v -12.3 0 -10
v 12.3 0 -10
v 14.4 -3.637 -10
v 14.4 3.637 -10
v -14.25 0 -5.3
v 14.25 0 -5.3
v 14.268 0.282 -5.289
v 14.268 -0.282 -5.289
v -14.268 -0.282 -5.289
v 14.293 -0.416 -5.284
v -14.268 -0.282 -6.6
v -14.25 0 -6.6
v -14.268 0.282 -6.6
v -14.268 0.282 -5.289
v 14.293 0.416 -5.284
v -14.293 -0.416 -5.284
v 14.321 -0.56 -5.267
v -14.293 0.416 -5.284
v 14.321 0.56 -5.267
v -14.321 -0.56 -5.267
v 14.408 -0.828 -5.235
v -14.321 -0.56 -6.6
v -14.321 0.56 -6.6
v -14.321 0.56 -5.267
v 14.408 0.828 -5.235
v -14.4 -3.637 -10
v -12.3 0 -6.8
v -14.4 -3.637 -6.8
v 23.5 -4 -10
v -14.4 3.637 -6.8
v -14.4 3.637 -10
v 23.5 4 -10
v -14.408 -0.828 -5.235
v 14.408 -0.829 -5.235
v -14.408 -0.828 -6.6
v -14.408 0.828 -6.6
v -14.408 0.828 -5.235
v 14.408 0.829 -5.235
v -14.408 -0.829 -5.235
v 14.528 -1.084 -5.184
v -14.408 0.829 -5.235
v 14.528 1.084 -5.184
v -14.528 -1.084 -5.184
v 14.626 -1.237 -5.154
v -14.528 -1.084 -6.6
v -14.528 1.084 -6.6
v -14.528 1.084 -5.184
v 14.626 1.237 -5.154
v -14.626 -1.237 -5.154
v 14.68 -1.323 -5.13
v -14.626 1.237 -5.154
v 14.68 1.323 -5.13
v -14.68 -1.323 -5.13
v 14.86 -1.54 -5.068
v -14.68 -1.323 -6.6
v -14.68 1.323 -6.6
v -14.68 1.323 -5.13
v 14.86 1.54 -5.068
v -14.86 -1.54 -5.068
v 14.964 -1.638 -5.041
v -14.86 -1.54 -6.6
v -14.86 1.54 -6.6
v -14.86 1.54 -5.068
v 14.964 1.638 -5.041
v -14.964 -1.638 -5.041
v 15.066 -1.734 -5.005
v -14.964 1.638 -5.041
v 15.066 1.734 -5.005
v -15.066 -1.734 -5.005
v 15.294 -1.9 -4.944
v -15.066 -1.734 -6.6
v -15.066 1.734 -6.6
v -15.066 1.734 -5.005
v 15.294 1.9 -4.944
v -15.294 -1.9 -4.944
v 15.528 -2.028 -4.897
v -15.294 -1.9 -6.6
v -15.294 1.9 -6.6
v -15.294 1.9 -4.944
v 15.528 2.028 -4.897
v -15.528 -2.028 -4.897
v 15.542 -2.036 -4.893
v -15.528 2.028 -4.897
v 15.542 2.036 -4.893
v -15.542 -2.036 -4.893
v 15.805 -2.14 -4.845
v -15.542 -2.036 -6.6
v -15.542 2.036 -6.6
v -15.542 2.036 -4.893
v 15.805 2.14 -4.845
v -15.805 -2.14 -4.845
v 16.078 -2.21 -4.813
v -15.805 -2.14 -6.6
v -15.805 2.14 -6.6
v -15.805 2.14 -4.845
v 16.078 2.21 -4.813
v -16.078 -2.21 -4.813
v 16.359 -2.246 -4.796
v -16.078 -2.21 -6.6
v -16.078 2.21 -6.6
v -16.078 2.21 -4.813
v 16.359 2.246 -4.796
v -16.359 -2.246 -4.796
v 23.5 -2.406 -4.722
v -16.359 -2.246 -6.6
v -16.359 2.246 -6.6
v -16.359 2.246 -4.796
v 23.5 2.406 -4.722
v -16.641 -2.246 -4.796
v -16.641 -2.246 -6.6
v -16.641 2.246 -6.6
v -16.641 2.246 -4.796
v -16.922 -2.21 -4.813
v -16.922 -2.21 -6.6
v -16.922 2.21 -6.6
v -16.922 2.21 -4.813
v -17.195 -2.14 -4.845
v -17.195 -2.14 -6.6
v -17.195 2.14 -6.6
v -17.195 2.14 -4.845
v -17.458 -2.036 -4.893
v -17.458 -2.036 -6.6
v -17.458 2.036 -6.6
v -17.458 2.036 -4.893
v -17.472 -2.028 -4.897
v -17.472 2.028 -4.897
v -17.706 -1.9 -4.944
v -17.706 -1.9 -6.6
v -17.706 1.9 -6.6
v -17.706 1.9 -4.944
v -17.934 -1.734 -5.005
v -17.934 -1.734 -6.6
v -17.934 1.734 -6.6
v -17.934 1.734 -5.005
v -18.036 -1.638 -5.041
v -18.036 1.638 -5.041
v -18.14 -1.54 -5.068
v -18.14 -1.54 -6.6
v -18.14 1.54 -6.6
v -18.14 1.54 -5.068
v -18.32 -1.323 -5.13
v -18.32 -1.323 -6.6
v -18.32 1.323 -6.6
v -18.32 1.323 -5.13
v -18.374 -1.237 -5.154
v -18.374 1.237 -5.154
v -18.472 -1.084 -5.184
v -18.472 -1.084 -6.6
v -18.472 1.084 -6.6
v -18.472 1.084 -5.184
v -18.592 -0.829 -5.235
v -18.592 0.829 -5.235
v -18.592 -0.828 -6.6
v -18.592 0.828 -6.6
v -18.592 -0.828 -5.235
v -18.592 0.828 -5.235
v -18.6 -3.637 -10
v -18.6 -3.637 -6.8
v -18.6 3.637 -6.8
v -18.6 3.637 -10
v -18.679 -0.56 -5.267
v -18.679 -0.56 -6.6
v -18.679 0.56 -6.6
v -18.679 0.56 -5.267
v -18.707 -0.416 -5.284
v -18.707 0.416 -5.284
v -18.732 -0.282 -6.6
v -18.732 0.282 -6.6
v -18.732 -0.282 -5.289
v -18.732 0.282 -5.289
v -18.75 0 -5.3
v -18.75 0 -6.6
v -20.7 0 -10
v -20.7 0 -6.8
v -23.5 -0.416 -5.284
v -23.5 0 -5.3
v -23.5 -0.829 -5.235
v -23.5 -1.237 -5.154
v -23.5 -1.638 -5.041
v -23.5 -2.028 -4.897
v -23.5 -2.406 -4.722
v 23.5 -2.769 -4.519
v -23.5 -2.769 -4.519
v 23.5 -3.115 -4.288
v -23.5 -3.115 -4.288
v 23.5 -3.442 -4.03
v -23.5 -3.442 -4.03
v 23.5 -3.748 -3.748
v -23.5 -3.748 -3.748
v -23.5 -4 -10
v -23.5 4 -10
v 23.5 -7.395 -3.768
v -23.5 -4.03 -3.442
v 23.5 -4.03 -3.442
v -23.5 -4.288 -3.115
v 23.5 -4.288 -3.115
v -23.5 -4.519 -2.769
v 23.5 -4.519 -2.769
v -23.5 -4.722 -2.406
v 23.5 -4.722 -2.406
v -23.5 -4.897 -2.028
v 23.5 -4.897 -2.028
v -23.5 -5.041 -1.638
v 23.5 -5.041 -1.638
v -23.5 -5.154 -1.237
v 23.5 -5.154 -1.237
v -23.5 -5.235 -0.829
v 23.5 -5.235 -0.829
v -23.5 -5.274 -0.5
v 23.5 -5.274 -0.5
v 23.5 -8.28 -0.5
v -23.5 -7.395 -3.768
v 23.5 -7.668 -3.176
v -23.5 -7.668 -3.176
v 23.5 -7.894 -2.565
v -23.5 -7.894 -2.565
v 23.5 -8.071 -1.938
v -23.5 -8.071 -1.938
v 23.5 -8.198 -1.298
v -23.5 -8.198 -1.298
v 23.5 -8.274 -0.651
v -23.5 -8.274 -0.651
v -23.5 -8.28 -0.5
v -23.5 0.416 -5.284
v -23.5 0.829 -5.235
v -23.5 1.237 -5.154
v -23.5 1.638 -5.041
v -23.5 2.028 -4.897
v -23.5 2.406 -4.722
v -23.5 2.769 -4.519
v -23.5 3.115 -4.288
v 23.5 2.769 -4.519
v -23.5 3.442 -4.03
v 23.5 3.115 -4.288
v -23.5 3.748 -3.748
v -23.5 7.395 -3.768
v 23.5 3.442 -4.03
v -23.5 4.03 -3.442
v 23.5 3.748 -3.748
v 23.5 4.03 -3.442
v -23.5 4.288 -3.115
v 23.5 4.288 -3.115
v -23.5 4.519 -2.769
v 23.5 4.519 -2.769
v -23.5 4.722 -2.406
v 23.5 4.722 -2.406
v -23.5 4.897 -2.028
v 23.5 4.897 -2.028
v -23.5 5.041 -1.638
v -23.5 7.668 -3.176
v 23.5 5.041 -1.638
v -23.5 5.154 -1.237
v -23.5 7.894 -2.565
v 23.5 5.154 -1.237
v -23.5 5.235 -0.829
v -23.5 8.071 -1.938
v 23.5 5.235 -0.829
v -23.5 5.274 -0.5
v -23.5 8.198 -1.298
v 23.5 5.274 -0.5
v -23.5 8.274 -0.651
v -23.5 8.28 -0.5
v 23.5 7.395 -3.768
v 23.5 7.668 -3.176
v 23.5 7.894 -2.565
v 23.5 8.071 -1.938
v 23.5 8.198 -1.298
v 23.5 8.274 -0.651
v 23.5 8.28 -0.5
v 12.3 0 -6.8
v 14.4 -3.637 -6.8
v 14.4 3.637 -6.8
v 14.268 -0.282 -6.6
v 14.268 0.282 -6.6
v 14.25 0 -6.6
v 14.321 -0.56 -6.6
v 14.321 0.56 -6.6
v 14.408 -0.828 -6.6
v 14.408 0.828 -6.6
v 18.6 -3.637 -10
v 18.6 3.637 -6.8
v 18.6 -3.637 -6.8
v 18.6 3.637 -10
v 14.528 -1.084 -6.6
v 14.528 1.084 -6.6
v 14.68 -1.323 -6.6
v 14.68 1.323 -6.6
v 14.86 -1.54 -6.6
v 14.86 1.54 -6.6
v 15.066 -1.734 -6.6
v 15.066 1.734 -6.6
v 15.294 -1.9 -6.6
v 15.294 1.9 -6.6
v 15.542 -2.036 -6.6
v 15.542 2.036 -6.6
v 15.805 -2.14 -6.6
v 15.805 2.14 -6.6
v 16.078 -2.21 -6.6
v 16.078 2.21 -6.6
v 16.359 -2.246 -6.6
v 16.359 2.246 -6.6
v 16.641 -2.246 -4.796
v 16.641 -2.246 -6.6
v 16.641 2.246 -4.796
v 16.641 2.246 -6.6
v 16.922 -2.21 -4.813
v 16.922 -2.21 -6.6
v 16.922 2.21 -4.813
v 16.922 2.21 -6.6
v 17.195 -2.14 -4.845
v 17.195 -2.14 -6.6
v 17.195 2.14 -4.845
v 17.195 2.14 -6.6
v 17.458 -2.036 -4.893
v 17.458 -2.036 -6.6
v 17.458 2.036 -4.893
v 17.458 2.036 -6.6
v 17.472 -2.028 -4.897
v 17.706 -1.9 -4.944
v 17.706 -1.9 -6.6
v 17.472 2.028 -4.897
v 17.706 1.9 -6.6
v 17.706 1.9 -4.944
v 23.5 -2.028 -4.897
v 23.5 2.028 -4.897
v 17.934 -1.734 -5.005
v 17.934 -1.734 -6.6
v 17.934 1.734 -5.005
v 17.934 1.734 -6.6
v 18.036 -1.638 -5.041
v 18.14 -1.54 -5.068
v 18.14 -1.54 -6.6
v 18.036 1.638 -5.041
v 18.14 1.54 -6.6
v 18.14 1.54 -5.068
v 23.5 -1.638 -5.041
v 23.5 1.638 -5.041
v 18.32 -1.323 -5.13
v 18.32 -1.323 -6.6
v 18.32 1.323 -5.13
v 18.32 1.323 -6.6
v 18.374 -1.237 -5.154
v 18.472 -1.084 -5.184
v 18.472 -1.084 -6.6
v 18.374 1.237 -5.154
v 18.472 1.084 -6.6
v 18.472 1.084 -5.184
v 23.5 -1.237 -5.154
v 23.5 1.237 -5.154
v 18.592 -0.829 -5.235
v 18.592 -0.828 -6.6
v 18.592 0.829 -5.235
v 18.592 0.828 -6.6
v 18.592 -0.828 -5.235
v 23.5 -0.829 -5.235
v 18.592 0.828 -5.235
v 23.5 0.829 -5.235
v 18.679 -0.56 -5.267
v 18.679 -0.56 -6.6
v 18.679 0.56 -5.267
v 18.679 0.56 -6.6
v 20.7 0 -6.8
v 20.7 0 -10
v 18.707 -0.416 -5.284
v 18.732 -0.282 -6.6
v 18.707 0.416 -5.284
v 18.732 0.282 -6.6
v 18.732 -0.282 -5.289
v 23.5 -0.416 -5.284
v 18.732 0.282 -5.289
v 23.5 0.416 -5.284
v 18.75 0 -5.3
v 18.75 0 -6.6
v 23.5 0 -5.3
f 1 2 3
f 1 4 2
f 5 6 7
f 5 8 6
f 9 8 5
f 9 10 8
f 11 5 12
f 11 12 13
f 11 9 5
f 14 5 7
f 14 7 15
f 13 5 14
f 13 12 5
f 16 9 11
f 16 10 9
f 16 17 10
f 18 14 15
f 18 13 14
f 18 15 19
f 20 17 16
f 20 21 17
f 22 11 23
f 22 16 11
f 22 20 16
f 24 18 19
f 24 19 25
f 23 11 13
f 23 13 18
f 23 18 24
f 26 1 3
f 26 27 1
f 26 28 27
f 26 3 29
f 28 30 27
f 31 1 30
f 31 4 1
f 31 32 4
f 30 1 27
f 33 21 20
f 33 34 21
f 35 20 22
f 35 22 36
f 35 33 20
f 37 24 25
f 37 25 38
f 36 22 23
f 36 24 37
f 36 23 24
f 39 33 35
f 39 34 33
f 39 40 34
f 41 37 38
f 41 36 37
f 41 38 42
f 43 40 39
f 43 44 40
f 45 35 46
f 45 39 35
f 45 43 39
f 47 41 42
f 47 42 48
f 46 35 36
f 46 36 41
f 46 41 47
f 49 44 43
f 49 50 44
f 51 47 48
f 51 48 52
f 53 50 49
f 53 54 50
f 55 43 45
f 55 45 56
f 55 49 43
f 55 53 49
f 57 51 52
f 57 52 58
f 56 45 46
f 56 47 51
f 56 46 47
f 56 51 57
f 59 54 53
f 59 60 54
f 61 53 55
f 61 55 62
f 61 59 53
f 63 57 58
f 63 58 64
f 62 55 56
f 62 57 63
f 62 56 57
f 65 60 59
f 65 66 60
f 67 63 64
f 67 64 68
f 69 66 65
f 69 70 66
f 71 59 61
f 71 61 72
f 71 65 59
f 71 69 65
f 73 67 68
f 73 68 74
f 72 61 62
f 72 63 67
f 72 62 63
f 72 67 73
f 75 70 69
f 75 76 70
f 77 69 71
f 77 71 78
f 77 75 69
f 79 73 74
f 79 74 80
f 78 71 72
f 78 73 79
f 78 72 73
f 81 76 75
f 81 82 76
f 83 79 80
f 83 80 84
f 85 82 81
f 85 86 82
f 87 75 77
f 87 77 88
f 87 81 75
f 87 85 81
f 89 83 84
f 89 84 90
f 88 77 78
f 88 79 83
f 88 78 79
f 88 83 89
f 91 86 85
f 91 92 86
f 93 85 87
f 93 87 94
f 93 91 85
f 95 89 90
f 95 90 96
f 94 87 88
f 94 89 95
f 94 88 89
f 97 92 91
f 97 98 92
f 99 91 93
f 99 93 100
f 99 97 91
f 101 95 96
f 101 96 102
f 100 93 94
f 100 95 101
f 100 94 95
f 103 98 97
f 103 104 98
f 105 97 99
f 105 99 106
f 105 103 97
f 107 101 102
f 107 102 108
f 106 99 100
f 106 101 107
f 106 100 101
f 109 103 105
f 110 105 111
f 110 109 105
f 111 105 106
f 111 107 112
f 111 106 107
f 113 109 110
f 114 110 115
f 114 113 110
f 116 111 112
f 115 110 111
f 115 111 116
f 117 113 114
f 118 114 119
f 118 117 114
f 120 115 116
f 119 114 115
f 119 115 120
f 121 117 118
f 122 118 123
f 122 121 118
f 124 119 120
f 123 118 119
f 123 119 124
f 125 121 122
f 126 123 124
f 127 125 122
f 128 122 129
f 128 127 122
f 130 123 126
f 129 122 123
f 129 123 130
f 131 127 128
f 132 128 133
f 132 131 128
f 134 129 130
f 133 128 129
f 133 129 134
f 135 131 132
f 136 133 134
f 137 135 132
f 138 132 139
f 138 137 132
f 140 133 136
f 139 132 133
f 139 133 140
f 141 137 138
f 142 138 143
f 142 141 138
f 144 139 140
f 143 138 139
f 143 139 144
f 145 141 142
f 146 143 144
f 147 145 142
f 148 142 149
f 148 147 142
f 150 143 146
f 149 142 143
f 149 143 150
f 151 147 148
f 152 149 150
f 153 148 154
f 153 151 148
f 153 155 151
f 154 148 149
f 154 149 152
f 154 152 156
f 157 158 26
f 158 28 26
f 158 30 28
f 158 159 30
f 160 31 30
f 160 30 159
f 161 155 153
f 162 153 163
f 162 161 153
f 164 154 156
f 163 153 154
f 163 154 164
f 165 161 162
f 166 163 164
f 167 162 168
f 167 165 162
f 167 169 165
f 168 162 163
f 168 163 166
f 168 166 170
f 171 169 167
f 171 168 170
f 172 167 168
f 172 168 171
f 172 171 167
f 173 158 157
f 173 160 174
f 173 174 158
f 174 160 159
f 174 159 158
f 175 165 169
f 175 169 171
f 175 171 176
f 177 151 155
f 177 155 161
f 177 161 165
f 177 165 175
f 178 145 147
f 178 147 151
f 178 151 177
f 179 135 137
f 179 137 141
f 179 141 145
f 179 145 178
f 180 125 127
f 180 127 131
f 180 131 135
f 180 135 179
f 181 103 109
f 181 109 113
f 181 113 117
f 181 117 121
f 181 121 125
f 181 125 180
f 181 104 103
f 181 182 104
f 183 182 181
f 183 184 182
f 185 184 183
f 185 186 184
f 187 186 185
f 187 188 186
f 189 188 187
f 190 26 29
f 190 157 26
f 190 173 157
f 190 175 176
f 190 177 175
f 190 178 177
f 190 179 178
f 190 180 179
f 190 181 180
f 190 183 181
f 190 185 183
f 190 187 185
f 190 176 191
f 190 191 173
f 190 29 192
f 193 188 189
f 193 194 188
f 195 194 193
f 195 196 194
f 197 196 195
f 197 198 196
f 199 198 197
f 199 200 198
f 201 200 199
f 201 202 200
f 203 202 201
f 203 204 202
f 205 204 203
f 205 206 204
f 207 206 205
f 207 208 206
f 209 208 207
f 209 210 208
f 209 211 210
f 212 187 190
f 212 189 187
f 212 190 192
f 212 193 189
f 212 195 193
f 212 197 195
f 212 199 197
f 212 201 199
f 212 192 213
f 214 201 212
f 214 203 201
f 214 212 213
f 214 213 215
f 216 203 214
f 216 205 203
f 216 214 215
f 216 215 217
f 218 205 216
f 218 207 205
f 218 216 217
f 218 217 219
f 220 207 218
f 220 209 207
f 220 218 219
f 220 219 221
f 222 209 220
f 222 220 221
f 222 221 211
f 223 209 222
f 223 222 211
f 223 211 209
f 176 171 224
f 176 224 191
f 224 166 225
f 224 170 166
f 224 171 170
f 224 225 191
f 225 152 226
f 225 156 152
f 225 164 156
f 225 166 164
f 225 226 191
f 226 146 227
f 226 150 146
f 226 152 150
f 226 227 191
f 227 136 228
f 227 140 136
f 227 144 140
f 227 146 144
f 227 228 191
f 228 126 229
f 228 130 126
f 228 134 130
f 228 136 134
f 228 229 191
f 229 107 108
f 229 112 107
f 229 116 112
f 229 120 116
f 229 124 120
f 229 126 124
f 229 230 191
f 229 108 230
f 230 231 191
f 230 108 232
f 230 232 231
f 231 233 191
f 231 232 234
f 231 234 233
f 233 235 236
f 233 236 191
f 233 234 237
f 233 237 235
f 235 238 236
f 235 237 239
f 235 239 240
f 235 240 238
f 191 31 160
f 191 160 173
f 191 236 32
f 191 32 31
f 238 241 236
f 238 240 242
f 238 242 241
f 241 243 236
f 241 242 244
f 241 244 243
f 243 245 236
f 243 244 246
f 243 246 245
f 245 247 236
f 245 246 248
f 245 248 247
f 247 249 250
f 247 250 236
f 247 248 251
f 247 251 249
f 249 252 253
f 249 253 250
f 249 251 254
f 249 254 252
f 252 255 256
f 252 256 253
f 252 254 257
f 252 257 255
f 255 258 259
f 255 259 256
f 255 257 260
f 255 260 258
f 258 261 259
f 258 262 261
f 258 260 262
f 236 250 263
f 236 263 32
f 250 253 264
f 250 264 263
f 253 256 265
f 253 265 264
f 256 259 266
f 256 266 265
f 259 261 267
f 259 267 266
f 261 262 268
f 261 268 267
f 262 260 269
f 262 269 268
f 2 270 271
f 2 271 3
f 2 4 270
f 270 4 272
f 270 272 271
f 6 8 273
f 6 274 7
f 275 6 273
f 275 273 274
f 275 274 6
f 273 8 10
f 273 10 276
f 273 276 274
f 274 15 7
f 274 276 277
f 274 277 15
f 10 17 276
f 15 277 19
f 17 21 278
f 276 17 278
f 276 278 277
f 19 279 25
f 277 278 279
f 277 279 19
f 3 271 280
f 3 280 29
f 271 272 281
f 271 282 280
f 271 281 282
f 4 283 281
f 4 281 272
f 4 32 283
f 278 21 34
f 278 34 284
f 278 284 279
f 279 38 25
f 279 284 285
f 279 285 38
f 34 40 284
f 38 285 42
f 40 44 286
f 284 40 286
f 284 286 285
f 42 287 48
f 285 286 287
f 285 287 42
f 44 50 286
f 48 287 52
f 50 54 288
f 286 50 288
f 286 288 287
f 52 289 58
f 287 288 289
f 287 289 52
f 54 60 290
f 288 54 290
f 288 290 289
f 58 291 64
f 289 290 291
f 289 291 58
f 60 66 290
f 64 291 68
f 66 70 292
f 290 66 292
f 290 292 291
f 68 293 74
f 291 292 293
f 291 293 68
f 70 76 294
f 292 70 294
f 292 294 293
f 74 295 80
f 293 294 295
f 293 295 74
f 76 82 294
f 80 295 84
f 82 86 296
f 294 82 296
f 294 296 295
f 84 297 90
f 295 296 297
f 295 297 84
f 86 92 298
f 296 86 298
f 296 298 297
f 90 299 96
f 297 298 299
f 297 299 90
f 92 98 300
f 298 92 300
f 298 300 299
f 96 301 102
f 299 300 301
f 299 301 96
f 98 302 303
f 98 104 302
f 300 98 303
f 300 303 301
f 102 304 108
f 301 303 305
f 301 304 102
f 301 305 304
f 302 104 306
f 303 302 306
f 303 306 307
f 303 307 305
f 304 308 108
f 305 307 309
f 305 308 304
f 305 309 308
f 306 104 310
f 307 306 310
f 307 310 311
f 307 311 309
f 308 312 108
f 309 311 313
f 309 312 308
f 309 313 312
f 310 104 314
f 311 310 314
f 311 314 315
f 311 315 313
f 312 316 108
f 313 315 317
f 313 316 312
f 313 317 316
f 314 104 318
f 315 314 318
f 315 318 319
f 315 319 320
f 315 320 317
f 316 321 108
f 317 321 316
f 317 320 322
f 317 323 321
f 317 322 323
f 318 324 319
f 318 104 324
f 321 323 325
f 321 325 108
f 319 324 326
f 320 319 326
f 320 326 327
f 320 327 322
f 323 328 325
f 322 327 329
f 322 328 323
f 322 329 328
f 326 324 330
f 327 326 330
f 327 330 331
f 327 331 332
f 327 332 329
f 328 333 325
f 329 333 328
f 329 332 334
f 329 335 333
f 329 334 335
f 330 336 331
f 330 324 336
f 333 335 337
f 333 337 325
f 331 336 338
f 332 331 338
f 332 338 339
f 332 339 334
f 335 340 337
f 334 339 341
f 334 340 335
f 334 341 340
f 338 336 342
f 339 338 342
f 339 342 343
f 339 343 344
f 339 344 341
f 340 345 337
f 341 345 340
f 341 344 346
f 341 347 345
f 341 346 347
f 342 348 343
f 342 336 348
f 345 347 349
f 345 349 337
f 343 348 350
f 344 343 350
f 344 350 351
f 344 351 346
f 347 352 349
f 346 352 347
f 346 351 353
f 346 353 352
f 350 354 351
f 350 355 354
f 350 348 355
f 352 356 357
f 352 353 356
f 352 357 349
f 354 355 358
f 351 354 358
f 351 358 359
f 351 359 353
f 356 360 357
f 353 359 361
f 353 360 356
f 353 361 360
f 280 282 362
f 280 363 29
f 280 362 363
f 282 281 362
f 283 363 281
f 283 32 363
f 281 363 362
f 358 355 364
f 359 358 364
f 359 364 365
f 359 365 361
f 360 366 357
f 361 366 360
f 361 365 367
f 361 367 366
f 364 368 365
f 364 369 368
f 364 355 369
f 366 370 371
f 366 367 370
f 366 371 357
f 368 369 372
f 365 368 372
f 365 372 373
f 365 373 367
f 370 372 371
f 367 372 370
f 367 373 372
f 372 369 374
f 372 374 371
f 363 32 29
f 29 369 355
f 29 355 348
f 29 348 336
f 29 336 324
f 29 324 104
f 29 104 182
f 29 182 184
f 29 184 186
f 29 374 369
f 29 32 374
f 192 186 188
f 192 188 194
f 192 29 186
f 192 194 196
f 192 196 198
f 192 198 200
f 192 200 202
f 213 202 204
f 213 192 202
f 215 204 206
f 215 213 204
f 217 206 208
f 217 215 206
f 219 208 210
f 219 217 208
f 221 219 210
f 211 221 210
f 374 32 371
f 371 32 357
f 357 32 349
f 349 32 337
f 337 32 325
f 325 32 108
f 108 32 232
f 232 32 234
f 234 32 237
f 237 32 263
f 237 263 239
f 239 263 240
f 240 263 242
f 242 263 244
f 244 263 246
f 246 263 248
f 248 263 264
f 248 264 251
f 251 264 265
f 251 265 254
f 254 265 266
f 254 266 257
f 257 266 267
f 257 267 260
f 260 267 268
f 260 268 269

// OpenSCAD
// file: lib/igus.scad
include <../../parameters.scad>


module efsm_12(){
    translate([0, 0, -(bearing_efsm_12_ag - bearing_efsm_12_B/2)]){
        translate([-bearing_efsm_12_h/2, -bearing_efsm_12_h/2, 0])
            cube([bearing_efsm_12_h, bearing_efsm_12_h, bearing_efsm_12_a1]);
        difference(){
            union(){
                intersection(){
                    translate([0,0, bearing_efsm_12_ag - bearing_efsm_12_B/2])
                        sphere(d=18, $fn = 50);
                    translate([0,0,-15])
                        cylinder(h = 30, d = 20);
                }
            }
            translate([0, 0, -15])
                cylinder(h=30, d=12);
        }
    }
}


module efsm_8(){
    translate([-33/2, -33/2, 0])
        cube([33, 33, 5.5]);
    translate([0,0,8.5])
        cylinder(h = 2, d1 = 18, d2 = 15);
    translate([0,0,6.5])
        cylinder(h = 7.94/2, d = 2);
    translate([0, 0, 6.5])
        sphere(r=3, $fn = 50);
}


module kstm_05(){
    import("../../STL/external/igus/KSTM_05_1.stl", convexity = 5);
}

module kstm_06(){
    import("../../STL/external/igus/KSTM_06_2.stl", convexity = 5);
}

module kstm_08(){
    import("../../STL/external/igus/KSTM_08_3.stl", convexity = 5);
}

module kstm_10(){
    import("../../STL/external/igus/KSTM_10_4.stl", convexity = 5);
}


data_kstm_center_height = [[5,7],[6,10],[8,10],[10,14]];
function kstm_center_height(type) = data_kstm_center_height[search(type, data_kstm_center_height)[0]][1];

data_kstm_hole_distance = [[5,25], [6,33], [8,33], [10,46], [12,46]];
function kstm_hole_distance(type) = data_kstm_hole_distance[search(type, data_kstm_hole_distance)[0]][1];

data_kstm_thickness = [[5,25], [6,33], [8,33], [10,46], [12,46]];
function kstm_thickness(type) = data_kstm_thickness[search(type, data_kstm_thickness)[0]][1];


translate([0, 0,  kstm_center_height(5)]) kstm_05();
translate([0, 20, kstm_center_height(6)]) kstm_06();
translate([0, 40, kstm_center_height(8)]) kstm_08();
translate([0, 60, kstm_center_height(10)]) kstm_10();
// main file
// Drzak kuloveho loziska KSTM na 10 mm trubku

include <../parameters.scad>
use <lib/igus.scad>


module 888_2015(){
    kstm_base_thickness = 8;
    kstm_base_length = 47;
    wall = 3;

    difference(){
        hull(){
            translate([-kstm_base_length/2, -kstm_base_thickness/2, -10])
                cube([kstm_base_length, kstm_base_thickness, 1]);

            rotate([0, 90, 0])
                cylinder(d = tube_for_undercarriage_outer_diameter + 2*wall, h = kstm_base_length, center = true, $fn = 80);
        }

        rotate([0, 90, 0])
            cylinder(d = tube_for_undercarriage_outer_diameter, h = kstm_base_length + global_clearance, center = true, $fn = 80);

        translate([-50, -50, -global_clearance])
            cube(100);

        translate([kstm_hole_distance(8)/2, 0, -10 + M4_nut_height + 0.2])
            cylinder(d = M4_screw_diameter, h = 100, center = false, $fn = 50);

        translate([-kstm_hole_distance(8)/2, 0, -10 + M4_nut_height + 0.2])
            cylinder(d = M4_screw_diameter, h = 100, center = false, $fn = 50);


        translate([kstm_hole_distance(8)/2, 0, -10])
            cylinder(d = M4_nut_diameter, h = M4_nut_height, center = false, $fn = 6);

        translate([-kstm_hole_distance(8)/2, 0, -10])
            cylinder(d = M4_nut_diameter, h = M4_nut_height, center = false, $fn = 6);


    }
}

888_2015();
